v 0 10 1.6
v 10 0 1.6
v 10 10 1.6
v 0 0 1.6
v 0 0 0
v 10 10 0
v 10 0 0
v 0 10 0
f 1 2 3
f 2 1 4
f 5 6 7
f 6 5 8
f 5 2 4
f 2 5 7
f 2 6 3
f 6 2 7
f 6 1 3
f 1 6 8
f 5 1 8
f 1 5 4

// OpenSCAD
/* Warning, this is a very basic generator with a lot of approximation 
input data : [LQFP, 2EB, 10x10x1.6mm, 80, , A, C04-21002A]
generated by com.zoubworld.electronics.cad.model3d.Basic
Date : Sun Feb 15 10:50:49 CET 2026
*/

//body
color("black")
translate([0,0,0])
cube([10.0,10.0,1.6], center=false);
